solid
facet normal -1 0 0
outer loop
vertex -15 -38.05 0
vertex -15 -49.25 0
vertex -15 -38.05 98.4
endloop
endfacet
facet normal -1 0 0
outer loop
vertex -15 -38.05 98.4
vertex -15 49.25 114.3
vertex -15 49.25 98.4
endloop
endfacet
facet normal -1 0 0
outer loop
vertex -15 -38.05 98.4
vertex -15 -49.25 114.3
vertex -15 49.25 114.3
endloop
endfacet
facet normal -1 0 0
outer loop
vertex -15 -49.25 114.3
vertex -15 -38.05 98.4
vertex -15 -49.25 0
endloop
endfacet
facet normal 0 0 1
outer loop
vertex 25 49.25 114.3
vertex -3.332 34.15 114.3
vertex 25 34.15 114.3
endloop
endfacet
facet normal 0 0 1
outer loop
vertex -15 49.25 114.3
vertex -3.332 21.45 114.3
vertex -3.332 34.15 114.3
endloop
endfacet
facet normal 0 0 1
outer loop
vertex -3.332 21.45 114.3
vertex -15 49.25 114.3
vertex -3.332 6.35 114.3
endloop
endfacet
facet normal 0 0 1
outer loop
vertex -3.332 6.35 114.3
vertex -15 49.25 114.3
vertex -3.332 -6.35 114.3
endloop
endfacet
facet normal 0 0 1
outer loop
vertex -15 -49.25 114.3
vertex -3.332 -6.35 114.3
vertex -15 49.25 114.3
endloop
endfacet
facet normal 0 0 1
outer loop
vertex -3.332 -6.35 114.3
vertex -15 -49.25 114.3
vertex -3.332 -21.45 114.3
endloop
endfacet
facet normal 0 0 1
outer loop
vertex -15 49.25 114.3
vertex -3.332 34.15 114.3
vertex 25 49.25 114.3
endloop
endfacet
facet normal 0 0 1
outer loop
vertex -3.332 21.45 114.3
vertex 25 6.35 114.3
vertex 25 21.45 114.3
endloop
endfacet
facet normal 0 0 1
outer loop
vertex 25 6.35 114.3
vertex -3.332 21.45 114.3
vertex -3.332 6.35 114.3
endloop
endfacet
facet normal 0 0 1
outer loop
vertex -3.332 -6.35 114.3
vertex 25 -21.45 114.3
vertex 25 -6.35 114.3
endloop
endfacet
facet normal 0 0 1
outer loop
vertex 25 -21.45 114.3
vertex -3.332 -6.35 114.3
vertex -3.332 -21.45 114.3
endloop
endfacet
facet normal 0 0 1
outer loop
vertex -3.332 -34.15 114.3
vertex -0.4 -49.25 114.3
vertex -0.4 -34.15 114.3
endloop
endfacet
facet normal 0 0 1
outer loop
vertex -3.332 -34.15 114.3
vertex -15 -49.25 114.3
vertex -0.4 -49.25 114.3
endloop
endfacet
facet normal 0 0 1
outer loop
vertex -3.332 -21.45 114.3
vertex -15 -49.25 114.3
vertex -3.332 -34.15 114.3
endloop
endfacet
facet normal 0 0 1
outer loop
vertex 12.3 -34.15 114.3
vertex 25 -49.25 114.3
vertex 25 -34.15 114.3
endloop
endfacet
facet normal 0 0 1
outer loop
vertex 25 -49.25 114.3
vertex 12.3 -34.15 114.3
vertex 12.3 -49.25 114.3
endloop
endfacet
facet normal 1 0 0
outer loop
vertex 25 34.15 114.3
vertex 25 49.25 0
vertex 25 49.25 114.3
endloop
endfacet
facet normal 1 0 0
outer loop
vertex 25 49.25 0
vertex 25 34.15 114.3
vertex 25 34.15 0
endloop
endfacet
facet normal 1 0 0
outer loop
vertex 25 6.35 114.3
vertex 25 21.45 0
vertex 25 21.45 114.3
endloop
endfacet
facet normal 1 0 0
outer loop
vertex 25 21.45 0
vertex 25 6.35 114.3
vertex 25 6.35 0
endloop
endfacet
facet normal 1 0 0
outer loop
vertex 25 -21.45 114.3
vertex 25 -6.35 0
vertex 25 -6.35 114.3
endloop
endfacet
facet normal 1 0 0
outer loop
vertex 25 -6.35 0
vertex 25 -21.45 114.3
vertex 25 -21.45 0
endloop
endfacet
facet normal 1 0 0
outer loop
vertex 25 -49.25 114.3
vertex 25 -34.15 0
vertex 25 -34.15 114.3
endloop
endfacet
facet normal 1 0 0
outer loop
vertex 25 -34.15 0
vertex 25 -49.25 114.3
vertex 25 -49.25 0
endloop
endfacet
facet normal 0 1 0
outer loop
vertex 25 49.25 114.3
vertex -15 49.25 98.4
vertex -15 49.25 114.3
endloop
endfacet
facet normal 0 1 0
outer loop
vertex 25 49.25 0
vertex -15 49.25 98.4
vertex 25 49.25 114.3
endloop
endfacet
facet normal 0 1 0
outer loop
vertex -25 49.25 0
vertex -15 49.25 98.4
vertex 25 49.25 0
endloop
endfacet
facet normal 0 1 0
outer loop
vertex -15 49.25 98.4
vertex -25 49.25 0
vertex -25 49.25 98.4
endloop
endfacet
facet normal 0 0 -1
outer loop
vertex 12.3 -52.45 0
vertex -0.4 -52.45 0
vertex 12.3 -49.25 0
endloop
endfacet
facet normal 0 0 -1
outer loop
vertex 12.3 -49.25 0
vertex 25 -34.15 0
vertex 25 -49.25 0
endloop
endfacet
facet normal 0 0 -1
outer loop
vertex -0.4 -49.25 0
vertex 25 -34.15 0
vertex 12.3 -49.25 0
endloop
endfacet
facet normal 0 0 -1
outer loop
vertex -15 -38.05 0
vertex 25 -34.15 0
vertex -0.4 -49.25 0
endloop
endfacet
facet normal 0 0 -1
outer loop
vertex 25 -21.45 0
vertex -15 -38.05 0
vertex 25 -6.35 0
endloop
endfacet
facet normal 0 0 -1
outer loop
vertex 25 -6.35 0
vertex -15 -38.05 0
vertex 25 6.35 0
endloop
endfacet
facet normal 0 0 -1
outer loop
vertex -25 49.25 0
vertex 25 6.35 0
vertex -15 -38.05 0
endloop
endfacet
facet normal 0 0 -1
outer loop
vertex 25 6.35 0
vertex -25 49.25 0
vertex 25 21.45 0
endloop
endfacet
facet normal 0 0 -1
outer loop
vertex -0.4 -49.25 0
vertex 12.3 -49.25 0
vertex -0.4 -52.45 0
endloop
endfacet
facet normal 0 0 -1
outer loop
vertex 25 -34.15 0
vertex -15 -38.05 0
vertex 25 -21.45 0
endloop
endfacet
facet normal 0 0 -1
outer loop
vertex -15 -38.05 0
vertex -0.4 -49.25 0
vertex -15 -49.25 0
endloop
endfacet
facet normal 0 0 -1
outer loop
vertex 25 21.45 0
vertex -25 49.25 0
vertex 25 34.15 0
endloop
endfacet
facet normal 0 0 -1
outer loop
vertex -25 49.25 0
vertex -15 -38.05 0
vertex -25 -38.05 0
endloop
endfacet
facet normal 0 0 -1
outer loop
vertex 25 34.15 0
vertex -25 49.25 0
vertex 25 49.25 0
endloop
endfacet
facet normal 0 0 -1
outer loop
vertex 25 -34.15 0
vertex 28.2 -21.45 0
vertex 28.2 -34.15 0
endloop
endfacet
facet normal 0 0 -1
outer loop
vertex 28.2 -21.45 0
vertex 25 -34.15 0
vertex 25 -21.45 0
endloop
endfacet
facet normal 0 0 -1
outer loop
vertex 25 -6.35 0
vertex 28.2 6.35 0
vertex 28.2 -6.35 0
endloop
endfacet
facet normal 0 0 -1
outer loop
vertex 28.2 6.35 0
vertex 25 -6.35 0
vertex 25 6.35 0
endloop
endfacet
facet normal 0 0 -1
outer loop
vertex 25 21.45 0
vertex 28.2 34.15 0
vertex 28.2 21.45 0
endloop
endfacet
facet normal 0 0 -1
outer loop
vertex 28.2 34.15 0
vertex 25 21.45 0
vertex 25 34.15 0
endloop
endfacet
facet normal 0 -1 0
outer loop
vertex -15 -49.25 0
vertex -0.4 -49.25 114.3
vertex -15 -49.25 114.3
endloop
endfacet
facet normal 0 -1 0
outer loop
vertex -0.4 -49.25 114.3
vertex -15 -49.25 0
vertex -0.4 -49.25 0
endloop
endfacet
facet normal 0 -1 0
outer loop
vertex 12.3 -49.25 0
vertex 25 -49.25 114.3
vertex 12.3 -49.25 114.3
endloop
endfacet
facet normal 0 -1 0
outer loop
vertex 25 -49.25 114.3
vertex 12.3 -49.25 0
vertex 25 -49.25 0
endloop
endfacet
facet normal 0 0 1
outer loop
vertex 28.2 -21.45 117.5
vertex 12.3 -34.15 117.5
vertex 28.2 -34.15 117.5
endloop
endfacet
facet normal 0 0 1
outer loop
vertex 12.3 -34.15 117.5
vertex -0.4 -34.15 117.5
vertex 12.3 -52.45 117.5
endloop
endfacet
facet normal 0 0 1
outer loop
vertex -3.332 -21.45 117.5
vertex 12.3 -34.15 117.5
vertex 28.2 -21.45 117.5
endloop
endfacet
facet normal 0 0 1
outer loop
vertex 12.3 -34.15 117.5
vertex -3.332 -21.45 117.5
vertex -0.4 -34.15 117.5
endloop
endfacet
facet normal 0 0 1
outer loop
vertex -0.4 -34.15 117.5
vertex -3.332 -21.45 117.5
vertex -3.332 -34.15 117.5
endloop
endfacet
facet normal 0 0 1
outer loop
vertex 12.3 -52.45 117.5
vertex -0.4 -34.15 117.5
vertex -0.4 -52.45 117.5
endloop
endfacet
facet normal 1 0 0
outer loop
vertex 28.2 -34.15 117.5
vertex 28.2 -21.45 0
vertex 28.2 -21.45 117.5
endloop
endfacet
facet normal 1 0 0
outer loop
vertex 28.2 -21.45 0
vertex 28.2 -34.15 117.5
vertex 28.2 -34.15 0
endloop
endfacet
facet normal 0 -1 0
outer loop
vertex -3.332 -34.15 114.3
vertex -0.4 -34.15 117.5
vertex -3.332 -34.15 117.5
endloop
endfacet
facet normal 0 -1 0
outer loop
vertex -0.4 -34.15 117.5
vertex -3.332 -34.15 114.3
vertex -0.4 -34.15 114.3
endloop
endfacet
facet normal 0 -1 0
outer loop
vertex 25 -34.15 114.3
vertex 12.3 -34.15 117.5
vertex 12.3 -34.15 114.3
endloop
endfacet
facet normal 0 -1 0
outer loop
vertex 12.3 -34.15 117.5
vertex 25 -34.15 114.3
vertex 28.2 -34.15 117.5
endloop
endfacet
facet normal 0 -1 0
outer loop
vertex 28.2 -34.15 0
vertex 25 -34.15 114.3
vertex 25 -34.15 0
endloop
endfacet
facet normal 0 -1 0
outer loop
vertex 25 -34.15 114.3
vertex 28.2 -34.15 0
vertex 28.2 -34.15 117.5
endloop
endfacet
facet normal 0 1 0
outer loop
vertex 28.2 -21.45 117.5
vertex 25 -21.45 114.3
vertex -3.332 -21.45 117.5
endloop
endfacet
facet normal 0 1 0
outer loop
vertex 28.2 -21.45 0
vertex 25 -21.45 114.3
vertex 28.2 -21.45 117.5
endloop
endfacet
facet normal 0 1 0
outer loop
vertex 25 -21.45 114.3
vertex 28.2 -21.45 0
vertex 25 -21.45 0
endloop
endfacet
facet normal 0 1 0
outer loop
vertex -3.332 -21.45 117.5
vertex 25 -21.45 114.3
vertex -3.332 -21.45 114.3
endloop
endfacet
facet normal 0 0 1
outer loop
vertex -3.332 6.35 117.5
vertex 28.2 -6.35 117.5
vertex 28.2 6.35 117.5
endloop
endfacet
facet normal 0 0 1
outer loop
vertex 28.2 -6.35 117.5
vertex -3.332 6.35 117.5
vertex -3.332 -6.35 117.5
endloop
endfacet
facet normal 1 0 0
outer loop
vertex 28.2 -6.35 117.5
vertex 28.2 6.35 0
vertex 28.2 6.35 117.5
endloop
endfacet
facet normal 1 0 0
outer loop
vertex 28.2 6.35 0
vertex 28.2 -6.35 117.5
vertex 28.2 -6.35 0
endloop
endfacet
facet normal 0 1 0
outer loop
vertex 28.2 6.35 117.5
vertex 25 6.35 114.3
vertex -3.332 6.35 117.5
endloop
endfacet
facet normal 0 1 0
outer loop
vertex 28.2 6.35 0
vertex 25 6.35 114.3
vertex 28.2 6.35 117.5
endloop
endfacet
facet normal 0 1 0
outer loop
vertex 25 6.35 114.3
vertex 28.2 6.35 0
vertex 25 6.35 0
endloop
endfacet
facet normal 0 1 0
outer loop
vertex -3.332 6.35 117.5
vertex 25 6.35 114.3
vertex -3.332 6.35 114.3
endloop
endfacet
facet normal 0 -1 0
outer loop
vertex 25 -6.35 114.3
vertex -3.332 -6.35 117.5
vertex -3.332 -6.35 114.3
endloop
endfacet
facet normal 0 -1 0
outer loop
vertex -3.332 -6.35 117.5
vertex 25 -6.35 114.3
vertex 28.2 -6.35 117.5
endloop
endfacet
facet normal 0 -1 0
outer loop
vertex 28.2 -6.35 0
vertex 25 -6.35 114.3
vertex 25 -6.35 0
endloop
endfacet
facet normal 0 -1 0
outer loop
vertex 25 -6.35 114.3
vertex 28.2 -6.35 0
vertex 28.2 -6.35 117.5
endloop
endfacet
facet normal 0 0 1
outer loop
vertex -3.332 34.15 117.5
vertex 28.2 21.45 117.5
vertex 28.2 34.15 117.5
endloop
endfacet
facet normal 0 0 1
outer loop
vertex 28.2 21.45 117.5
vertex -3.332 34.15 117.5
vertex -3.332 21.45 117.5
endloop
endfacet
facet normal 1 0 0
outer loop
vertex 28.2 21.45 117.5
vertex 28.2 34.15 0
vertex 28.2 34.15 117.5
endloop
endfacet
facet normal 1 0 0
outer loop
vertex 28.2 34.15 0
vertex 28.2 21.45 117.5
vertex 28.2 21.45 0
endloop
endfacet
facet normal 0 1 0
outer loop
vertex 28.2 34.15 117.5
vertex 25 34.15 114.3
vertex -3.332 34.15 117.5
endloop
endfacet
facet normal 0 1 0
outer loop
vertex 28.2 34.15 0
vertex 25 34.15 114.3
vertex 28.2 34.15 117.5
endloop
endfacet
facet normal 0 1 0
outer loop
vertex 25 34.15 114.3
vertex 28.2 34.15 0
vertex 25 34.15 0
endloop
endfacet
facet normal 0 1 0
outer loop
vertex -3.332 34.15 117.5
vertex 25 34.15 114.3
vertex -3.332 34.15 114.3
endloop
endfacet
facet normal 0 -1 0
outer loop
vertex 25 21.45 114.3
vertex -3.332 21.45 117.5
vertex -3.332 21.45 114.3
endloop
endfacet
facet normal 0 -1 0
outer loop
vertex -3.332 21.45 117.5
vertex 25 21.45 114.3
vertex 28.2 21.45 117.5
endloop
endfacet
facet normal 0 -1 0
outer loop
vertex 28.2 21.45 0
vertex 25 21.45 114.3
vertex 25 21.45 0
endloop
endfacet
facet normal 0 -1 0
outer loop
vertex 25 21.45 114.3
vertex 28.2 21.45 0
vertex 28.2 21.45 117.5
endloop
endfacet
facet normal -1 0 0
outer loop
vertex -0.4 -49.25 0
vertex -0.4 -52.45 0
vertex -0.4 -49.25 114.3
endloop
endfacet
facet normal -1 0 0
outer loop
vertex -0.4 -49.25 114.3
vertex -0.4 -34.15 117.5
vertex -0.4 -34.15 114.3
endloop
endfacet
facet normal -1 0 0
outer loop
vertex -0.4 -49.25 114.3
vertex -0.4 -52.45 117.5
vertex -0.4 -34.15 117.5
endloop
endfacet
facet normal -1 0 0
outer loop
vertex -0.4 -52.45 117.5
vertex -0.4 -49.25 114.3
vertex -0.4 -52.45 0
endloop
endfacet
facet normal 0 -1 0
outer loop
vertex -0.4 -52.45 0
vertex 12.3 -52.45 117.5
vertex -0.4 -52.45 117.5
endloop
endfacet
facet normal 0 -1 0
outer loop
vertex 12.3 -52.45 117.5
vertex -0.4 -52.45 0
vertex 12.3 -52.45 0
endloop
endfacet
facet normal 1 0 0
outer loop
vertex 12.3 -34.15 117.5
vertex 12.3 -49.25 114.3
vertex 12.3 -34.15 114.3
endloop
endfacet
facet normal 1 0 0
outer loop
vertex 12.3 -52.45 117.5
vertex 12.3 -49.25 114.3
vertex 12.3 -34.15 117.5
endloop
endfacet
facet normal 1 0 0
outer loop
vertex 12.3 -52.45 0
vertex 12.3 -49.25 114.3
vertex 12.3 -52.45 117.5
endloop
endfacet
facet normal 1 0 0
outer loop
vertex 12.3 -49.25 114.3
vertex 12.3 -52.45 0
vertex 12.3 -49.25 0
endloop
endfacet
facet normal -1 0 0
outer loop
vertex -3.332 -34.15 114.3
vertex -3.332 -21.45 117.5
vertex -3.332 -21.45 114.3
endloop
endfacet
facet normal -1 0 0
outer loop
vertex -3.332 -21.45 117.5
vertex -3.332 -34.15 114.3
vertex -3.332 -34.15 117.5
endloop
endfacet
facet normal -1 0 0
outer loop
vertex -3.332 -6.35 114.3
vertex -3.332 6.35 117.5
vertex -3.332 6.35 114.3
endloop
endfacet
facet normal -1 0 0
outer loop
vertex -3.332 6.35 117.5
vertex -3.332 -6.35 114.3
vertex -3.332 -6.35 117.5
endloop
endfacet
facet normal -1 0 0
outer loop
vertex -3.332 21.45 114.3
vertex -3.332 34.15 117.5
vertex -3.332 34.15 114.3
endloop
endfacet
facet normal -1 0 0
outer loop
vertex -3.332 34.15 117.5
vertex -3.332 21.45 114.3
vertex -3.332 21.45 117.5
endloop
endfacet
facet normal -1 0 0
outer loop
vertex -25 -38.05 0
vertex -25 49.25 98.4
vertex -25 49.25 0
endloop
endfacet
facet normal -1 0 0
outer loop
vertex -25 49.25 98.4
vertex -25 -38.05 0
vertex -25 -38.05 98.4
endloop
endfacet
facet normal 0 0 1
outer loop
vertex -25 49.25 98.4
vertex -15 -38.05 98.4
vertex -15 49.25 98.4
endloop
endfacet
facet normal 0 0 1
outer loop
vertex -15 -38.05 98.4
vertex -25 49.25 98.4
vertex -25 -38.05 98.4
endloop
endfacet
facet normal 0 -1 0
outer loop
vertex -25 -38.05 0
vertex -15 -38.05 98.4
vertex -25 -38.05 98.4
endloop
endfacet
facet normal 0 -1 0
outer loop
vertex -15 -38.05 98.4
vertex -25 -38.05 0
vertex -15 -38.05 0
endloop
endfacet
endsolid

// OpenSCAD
$fn=50;

// Based on http://www.gbfans.com/wiki/File:Stefan%27s_Proton_Pack_Plans_Page_9.jpg
// Commented-out values are from the plan; the ones used below are for my pack

bridge_length = 87.3;
bridge_width = 10; //25.4;
bridge_height = 98.4;
box_length = 98.5;
box_width = 40;//44.4;
box_height = 114.3;
strip_width = 12.7;
strip_thickness = 3.2;

strip_gap_y = (box_length-strip_width*3)/4;

translate([
    -(bridge_width+box_width)/2,
    -box_length/2,
    0
])
gun_mount_box();

module gun_mount_box() {
    union() {
        translate([0,box_length - bridge_length,0]) 
        bridge();
        translate([bridge_width,0,0]) 
        main_box();
    }
}

module main_box() {
    cube([
        box_width,
        box_length,
        box_height
    ]);
    
    // Side strips along y axis
    translate([box_width,strip_gap_y,0])
    side_strip();
    translate([box_width,
        strip_gap_y*2 +strip_width,
        0])
    side_strip();
    translate([box_width,
        strip_gap_y*3 +strip_width*2,
        0])
    side_strip();
    
    // strip on x axis
    translate([box_width-strip_width,-strip_thickness,0])
    rotate([0,0,90])
    side_strip();
    
    // top strips along y axis
    translate([0,strip_gap_y,0]) top_strip();
    translate([0,strip_gap_y*2 + strip_width,0]) top_strip();
    translate([0,strip_gap_y*3 + strip_width*2,0]) top_strip();
    
    // top strip on x axis
    translate([
        box_width-strip_width*2,
        0,
        box_height
    ])
    cube([
        strip_width,
        strip_gap_y+strip_width,
        strip_thickness
    ]);
}

module top_strip() {
    top_strip_width = box_width*0.7882882883;   // trust me
    
    translate([
        box_width - top_strip_width + strip_thickness,
        0,
        box_height
    ])
    cube([
        top_strip_width,
        strip_width,
        strip_thickness
    ]);
}

module side_strip() {
    cube([strip_thickness,strip_width,box_height+strip_thickness]);
}

module bridge() {
    cube([
        bridge_width,
        bridge_length,
        bridge_height
    ]);
}
